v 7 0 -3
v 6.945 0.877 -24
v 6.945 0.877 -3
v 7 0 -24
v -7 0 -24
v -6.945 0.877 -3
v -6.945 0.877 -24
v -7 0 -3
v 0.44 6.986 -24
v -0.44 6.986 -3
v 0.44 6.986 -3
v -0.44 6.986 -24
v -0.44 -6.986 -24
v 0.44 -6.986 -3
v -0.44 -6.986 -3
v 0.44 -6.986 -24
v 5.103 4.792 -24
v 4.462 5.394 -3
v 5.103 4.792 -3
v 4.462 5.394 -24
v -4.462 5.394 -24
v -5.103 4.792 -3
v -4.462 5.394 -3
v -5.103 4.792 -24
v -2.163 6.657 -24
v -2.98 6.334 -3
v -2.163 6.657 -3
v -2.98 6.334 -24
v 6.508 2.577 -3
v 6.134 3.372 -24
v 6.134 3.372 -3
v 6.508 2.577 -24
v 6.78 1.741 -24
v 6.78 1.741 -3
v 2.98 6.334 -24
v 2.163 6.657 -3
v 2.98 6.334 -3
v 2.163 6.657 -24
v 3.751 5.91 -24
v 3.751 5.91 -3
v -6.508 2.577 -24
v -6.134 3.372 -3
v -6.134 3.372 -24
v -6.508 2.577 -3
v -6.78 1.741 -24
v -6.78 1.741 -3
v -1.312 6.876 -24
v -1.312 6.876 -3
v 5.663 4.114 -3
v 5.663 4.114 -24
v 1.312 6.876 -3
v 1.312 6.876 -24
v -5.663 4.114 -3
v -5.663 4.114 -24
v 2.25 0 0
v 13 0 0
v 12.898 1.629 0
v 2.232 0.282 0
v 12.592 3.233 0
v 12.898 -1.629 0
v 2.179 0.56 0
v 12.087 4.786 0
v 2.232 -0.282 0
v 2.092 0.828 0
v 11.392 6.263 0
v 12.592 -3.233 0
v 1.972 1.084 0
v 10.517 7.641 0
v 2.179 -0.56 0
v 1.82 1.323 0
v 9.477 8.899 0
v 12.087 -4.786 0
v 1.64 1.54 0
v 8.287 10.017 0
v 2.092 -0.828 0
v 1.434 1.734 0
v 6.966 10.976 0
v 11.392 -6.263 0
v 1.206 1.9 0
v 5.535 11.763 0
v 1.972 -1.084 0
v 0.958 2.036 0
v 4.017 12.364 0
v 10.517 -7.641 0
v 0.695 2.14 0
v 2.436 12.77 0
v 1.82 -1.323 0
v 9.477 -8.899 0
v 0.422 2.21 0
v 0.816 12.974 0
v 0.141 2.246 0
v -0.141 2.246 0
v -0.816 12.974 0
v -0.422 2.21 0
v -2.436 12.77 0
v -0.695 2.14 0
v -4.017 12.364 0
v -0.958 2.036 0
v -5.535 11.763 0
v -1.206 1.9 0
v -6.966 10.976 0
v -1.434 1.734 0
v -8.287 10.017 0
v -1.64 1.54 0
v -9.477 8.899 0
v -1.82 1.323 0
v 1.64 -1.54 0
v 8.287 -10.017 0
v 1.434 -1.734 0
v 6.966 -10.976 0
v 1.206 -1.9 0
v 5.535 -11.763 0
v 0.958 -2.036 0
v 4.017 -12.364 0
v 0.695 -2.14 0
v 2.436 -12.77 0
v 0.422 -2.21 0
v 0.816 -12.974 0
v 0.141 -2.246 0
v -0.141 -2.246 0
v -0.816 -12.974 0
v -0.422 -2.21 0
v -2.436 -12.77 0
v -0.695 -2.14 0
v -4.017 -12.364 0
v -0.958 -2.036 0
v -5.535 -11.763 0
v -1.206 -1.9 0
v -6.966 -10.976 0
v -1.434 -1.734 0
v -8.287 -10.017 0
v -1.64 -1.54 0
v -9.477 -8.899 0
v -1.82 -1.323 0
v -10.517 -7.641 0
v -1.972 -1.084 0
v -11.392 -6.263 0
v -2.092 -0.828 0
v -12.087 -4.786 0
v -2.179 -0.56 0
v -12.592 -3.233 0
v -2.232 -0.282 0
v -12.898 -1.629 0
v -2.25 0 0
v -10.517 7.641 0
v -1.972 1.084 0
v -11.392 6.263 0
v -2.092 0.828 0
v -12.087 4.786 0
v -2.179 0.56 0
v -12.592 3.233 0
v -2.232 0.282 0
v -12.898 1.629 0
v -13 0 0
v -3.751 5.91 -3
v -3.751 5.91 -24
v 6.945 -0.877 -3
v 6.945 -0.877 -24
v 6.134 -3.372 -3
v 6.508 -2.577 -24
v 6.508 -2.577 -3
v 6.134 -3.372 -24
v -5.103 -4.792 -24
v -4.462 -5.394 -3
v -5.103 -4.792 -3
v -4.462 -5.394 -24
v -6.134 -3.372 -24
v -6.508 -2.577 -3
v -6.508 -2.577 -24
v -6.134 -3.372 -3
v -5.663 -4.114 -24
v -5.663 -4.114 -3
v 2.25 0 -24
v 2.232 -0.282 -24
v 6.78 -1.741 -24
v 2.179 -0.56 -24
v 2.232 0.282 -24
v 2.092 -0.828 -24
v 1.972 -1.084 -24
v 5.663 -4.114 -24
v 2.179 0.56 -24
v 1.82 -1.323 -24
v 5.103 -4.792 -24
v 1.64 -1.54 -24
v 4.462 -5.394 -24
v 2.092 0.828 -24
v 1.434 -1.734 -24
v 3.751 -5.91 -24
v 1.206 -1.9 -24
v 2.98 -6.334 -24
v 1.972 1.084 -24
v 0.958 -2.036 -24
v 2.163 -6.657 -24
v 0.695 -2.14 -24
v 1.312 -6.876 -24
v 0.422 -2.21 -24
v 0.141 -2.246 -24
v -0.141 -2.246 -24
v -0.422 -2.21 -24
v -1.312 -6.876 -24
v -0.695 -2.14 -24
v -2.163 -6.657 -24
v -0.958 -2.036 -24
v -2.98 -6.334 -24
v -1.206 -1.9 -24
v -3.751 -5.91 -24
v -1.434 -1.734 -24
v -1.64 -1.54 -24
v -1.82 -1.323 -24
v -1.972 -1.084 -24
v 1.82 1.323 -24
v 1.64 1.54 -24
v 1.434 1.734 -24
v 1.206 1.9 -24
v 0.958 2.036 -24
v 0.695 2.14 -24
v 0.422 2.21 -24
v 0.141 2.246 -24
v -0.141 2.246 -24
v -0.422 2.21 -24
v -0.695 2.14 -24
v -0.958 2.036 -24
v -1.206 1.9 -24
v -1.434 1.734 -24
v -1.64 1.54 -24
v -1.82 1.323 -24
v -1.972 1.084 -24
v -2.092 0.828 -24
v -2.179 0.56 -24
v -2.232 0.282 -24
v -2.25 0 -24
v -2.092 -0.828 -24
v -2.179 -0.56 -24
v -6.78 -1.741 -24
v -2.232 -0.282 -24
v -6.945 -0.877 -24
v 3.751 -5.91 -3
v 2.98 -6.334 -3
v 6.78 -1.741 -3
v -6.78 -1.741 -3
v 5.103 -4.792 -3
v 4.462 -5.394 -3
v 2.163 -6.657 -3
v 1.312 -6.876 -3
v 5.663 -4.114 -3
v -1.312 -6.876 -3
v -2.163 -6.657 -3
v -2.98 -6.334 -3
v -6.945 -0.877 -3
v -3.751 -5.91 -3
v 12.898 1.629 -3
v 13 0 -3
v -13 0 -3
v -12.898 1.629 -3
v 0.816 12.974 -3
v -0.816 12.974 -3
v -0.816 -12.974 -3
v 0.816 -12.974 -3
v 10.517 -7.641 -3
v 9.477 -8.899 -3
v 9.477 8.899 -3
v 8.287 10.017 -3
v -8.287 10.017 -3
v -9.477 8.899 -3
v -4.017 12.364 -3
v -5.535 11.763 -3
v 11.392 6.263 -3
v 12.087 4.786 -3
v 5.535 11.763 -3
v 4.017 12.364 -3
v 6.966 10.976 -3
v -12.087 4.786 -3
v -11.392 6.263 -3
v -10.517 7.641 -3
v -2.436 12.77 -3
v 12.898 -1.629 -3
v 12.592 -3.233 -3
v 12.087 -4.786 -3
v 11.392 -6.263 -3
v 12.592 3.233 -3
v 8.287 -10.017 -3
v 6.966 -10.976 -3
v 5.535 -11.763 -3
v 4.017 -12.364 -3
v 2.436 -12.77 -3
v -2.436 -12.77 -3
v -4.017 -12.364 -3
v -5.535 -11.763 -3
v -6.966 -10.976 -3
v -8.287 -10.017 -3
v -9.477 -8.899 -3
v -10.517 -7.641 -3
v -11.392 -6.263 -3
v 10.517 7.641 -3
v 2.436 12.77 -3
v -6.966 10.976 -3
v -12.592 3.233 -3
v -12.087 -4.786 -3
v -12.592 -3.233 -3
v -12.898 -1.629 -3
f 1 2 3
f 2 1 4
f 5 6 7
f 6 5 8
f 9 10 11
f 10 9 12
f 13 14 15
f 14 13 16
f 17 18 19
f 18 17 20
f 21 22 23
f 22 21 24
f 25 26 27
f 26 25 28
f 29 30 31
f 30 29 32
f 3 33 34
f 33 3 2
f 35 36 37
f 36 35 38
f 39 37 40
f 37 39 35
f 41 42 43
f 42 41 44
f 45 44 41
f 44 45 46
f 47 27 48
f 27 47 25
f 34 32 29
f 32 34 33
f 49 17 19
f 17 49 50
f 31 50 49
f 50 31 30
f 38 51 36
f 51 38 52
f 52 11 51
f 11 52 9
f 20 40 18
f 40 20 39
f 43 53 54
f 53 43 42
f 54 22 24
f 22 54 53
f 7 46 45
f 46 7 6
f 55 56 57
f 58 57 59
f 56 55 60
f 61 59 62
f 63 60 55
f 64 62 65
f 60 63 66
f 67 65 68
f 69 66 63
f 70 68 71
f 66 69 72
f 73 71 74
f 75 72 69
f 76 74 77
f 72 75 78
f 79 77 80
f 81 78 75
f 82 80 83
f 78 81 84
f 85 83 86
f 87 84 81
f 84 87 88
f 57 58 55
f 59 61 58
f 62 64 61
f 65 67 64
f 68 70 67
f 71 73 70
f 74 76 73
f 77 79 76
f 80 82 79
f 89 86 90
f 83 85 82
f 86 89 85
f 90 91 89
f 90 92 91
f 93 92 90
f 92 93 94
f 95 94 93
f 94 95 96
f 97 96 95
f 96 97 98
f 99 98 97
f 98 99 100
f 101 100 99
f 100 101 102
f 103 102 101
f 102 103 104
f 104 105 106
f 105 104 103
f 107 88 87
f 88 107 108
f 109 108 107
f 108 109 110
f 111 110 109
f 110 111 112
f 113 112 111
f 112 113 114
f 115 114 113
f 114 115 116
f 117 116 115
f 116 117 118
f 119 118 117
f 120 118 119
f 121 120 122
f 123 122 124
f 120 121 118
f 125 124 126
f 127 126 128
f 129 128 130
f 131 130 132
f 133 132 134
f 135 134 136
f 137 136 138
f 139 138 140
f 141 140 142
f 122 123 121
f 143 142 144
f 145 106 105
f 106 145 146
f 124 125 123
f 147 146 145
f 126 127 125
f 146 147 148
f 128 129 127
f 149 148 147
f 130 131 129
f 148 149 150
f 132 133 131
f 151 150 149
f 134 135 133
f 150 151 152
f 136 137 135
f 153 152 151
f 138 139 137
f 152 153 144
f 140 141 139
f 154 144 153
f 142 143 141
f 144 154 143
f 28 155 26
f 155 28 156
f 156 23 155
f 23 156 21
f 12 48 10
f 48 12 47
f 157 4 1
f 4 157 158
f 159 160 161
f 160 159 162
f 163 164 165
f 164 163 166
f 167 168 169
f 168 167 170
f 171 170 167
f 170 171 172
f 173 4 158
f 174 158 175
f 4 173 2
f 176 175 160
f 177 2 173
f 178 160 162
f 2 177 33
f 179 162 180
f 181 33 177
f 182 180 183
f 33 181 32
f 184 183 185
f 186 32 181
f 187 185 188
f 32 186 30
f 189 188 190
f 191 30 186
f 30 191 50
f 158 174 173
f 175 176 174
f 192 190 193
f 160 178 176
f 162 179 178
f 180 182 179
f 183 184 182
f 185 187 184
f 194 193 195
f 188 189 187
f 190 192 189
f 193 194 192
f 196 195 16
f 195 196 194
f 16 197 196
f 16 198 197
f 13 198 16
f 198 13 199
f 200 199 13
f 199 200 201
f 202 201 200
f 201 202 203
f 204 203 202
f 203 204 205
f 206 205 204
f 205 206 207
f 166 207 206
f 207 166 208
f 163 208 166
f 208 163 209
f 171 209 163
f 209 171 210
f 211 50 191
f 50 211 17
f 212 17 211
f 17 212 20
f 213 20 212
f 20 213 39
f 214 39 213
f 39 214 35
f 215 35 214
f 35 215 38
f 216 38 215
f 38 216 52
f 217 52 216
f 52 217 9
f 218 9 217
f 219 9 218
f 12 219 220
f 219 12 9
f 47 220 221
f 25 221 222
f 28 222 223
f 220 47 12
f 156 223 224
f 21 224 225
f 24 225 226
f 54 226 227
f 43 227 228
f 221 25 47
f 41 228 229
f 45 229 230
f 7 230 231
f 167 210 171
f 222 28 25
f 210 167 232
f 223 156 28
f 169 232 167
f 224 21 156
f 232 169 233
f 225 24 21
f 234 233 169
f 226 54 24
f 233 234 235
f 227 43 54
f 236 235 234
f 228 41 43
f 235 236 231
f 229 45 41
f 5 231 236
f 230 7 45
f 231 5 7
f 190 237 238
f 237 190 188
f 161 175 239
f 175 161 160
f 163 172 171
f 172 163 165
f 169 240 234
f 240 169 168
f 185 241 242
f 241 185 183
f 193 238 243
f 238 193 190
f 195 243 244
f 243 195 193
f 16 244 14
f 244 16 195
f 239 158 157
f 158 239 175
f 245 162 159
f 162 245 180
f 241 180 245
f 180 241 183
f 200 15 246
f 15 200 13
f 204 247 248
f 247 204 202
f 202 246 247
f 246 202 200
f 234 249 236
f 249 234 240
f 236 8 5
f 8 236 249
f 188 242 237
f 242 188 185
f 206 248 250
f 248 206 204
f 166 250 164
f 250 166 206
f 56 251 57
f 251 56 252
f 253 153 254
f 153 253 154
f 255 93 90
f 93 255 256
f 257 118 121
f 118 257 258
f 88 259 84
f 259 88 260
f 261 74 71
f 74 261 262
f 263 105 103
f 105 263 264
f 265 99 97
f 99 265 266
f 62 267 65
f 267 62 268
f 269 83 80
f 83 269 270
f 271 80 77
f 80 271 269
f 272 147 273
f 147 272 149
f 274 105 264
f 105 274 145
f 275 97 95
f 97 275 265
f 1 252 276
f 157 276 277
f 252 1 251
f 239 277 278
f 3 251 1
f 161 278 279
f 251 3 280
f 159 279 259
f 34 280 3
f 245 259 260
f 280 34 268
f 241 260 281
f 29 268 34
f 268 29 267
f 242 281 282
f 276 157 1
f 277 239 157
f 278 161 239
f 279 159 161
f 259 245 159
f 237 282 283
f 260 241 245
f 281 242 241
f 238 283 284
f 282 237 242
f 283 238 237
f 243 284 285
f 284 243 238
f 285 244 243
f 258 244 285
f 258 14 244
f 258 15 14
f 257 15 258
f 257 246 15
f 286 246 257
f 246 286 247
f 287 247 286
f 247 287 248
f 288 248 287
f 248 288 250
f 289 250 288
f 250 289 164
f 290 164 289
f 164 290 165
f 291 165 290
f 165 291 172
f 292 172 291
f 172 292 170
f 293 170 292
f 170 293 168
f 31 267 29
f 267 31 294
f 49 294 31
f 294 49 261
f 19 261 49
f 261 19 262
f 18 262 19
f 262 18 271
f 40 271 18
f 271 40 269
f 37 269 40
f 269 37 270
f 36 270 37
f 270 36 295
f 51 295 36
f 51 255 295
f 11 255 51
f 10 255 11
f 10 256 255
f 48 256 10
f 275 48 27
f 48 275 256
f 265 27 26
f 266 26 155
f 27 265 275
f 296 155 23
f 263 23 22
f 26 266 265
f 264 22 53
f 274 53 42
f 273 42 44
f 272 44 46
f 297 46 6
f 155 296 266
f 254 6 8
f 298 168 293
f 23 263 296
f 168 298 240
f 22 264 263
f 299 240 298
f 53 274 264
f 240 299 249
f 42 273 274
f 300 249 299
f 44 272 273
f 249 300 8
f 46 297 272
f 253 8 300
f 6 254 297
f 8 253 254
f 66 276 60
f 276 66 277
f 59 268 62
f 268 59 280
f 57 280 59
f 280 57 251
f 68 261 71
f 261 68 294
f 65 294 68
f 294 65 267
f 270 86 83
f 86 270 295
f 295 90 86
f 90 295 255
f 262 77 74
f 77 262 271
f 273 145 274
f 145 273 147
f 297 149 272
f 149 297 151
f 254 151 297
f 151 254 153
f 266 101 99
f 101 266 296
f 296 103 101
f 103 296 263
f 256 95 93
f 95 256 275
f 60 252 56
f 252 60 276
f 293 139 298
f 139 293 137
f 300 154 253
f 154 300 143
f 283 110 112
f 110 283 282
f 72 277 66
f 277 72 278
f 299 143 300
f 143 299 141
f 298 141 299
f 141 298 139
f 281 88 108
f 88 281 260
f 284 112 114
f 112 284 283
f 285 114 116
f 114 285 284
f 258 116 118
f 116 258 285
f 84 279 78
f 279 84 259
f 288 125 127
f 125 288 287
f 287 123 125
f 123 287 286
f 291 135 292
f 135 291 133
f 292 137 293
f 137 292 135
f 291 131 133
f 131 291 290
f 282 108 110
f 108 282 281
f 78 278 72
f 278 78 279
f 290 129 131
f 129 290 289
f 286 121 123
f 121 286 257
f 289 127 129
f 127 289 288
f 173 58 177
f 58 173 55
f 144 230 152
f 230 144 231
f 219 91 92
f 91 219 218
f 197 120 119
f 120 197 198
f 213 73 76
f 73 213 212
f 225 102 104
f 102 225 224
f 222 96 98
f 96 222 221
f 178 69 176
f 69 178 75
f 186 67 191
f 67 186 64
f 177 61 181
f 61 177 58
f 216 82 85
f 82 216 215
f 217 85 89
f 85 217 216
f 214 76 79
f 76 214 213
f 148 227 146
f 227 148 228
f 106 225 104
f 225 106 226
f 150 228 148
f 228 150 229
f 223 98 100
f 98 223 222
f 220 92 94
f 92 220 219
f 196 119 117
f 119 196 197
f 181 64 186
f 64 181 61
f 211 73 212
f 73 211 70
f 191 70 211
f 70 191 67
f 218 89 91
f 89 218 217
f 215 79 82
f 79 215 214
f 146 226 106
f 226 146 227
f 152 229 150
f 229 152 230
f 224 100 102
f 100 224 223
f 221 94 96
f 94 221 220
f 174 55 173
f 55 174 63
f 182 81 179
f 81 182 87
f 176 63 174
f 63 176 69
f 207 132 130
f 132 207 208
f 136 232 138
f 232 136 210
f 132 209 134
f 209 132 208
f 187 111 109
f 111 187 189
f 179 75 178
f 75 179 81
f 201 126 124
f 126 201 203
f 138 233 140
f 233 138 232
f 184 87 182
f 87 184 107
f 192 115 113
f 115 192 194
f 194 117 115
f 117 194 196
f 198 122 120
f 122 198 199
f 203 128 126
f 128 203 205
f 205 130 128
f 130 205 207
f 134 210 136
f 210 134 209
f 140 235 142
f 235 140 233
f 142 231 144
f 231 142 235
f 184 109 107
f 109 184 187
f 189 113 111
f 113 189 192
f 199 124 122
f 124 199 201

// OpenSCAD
$fn = 50;


difference() {
	union() {
		translate(v = [0, 0, -24.0000000000]) {
			cylinder(h = 24, r = 7.0000000000);
		}
		translate(v = [0, 0, -3.0000000000]) {
			cylinder(h = 3, r = 13.0000000000);
		}
	}
	union() {
		#translate(v = [0, 0, -24]) {
			cylinder(h = 24, r = 2.2500000000);
		}
	}
}
